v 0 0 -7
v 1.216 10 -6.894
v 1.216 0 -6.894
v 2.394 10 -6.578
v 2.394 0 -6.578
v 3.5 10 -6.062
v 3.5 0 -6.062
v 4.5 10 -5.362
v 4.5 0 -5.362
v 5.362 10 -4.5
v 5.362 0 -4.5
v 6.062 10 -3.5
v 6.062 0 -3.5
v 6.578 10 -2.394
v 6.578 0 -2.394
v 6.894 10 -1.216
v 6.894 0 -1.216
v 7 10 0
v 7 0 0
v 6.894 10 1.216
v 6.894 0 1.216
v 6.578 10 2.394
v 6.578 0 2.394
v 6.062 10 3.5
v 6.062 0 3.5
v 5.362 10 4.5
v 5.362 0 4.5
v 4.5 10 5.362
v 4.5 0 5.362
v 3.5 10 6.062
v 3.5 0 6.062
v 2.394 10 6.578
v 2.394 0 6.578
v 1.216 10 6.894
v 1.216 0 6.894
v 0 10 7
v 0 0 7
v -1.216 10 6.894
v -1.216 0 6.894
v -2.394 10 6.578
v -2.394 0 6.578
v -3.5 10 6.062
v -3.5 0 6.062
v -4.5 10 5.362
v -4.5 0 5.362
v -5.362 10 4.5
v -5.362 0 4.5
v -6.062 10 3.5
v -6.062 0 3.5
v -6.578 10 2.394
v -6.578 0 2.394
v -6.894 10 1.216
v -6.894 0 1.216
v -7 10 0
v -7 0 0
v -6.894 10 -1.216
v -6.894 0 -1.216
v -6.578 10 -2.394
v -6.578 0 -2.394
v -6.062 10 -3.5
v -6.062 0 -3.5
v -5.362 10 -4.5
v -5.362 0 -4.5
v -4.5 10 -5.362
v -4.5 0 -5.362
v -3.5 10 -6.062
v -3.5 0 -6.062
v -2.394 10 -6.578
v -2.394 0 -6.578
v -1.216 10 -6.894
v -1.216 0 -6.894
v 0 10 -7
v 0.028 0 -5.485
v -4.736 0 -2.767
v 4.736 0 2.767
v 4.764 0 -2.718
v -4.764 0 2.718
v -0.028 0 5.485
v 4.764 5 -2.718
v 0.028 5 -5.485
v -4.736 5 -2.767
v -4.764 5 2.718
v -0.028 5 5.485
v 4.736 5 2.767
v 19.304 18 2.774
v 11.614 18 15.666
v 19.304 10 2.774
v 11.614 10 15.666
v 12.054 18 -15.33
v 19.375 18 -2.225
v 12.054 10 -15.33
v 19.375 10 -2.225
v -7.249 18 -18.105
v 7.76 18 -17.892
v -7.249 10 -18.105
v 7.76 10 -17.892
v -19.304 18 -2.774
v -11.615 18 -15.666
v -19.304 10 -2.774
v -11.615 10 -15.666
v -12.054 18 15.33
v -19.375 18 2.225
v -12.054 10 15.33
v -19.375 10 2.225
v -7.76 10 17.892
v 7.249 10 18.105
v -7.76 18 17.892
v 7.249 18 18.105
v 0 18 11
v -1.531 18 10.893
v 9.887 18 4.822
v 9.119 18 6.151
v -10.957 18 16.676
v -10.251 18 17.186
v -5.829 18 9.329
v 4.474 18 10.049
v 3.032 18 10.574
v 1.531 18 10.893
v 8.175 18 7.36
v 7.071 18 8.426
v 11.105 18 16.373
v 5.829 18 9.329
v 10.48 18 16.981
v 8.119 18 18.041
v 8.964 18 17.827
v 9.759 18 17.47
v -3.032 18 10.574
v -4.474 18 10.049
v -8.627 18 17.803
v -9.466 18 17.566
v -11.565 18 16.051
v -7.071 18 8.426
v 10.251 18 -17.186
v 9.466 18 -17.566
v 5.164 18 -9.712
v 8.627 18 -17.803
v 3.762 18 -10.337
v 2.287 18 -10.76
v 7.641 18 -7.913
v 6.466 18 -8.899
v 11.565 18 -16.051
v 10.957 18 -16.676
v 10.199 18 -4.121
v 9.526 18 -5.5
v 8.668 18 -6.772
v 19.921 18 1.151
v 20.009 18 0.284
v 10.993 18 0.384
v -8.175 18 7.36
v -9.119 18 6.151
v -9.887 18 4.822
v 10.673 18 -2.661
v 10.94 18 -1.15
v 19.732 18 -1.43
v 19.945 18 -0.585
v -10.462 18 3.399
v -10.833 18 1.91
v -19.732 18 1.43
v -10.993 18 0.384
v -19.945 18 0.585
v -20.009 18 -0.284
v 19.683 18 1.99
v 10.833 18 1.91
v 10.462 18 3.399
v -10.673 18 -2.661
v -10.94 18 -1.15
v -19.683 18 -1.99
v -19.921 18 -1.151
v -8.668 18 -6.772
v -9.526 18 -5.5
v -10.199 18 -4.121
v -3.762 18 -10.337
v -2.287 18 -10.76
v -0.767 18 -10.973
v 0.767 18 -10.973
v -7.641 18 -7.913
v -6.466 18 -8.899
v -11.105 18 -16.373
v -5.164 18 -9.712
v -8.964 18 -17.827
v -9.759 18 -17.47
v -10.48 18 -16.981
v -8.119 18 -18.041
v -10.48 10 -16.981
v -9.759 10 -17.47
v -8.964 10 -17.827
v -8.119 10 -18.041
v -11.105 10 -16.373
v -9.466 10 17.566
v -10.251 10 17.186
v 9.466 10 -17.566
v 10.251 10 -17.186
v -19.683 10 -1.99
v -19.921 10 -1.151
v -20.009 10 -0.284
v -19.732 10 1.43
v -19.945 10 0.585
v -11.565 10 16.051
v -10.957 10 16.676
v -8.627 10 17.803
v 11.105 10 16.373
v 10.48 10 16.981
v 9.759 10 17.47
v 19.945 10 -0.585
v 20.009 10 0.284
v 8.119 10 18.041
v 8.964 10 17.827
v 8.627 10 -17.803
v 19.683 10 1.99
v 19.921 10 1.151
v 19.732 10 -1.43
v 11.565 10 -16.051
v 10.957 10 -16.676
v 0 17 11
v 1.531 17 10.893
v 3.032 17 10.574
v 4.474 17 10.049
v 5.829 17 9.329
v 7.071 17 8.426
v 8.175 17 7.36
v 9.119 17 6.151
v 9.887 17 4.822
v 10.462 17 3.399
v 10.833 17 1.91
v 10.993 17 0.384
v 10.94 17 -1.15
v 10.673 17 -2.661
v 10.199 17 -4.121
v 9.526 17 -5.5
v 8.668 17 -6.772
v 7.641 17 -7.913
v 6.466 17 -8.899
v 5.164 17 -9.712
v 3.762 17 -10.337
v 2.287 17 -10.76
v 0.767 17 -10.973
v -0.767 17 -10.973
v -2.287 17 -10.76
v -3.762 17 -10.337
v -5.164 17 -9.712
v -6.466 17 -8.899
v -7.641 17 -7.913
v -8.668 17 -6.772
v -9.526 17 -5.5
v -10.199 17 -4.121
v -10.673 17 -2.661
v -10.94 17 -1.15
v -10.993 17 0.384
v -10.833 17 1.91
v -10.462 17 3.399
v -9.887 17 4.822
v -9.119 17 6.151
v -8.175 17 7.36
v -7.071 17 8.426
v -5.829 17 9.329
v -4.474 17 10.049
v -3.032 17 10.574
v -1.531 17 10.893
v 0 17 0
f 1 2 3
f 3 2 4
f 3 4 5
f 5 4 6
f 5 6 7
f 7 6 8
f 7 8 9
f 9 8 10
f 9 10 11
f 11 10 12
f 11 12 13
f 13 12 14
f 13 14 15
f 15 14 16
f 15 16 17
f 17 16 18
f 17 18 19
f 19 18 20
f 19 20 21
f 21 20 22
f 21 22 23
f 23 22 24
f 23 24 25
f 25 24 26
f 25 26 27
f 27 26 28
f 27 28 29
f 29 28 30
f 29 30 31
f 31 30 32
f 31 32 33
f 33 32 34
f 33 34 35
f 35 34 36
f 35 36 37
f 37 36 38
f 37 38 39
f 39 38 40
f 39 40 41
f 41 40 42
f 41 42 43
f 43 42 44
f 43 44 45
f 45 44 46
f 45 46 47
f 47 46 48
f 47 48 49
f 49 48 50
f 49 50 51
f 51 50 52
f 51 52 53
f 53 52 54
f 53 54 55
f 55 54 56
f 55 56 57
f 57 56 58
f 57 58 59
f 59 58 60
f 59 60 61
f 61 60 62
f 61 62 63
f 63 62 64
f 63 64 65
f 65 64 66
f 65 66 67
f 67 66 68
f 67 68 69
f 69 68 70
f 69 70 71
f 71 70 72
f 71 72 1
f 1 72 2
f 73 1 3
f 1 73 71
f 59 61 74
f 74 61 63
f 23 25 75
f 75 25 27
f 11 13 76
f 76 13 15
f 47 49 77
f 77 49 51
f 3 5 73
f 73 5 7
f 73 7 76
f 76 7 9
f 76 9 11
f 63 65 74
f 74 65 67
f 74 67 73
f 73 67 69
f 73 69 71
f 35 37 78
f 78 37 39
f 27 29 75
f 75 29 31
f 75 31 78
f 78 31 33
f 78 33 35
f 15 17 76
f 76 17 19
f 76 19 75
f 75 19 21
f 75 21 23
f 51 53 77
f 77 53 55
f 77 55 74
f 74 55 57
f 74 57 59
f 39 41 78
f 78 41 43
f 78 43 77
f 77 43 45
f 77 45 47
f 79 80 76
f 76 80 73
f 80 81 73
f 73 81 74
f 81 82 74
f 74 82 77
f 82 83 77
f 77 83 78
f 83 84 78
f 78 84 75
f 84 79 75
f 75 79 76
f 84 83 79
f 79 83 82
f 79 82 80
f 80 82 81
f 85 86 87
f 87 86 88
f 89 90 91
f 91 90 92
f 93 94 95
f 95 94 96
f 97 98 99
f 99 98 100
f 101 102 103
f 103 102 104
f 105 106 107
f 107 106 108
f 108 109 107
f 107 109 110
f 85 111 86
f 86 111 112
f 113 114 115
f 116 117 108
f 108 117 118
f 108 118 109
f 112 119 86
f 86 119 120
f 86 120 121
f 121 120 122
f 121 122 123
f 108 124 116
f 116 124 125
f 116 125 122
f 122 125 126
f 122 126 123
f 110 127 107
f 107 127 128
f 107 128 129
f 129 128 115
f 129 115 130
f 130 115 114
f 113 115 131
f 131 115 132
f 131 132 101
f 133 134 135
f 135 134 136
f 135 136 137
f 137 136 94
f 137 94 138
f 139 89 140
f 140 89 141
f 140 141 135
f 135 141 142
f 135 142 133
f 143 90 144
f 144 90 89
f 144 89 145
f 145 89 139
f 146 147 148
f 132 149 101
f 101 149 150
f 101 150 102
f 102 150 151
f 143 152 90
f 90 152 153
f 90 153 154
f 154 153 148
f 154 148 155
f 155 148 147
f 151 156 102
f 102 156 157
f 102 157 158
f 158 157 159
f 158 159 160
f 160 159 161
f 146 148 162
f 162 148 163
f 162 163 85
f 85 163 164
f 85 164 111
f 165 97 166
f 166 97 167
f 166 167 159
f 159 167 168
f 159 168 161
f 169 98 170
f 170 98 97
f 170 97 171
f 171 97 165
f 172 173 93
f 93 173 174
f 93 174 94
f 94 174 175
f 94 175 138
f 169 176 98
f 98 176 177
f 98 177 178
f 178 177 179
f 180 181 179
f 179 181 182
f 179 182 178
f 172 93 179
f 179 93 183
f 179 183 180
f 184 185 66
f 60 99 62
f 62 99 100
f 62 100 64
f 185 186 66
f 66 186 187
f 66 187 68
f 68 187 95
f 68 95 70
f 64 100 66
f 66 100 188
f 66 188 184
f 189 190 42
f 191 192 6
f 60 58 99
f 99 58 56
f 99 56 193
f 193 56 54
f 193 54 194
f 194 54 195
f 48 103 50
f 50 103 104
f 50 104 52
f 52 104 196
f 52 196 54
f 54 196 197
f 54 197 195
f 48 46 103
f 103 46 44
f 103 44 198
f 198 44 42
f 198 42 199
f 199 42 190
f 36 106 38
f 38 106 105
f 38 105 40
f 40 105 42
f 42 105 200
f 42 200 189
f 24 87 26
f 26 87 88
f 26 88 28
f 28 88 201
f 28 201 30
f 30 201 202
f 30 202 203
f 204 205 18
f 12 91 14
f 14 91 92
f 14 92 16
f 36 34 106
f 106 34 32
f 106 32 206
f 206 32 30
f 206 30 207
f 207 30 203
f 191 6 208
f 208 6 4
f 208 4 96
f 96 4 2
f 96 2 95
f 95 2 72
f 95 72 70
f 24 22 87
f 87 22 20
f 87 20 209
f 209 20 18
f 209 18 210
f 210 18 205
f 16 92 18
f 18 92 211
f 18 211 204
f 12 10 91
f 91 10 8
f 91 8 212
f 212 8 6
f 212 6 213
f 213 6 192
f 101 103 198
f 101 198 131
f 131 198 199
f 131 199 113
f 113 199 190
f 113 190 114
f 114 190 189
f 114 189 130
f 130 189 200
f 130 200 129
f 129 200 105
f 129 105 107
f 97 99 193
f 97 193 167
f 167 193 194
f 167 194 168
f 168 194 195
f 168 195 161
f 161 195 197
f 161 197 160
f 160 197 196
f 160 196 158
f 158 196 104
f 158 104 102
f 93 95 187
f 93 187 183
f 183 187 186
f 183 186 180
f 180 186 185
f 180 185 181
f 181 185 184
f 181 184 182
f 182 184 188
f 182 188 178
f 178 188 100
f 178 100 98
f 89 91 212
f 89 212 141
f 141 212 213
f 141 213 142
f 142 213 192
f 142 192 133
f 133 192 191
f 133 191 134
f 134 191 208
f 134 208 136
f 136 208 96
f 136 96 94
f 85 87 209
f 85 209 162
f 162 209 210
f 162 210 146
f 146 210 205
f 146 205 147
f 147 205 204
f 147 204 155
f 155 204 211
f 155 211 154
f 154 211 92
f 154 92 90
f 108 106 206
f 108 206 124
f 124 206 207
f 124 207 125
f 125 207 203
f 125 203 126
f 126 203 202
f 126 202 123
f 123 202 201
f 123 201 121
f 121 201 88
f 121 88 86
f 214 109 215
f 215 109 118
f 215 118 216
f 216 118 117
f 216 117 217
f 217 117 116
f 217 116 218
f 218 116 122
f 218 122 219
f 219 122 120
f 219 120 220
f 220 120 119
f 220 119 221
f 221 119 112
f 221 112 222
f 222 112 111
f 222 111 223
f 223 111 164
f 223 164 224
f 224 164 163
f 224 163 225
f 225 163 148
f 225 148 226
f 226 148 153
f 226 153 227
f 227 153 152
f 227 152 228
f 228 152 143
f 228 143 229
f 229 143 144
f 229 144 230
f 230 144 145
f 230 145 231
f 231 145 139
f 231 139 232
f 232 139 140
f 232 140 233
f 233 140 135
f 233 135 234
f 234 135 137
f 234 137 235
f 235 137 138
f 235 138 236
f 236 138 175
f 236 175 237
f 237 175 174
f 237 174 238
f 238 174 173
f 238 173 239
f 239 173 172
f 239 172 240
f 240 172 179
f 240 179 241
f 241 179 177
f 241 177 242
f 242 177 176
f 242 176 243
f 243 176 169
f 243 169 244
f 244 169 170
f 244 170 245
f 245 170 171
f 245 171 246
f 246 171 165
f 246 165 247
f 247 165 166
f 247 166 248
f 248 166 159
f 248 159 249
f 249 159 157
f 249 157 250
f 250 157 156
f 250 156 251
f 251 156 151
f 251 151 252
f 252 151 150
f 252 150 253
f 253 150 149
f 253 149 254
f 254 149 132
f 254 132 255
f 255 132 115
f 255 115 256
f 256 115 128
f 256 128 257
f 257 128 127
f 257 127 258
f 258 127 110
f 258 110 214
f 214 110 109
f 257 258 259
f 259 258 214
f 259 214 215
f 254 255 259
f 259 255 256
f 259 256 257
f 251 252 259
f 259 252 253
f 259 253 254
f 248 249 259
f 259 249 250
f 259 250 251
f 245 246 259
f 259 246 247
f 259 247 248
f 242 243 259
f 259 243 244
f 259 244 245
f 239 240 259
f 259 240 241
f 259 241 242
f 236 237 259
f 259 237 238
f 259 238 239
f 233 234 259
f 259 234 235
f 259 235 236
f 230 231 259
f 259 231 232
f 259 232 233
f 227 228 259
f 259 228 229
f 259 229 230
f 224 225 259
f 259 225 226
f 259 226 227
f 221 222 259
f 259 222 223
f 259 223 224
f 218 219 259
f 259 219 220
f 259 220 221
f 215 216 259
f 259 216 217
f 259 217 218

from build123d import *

# Parameters (mm, degrees)
SKETCH1_R           = 7
BOSS_EXTRUDE1_DEPTH = 10
CUT_EXTRUDE1_DEPTH  = 5
BOSS_EXTRUDE2_DEPTH = 8
FILLET1_R           = 5
SKETCH4_R           = 11
CUT_EXTRUDE2_DEPTH  = 1


with BuildPart() as part:
    # Sketch1 → Boss-Extrude1 (new body)
    with BuildSketch(Plane(origin=(0, 0, 0), x_dir=(1, 0, 0), z_dir=(0, 1, 0))):
        with Locations(Location((0, 0, 0), (0, 0, 270))):
            Circle(SKETCH1_R)
    extrude(amount=BOSS_EXTRUDE1_DEPTH)

    # Sketch2 → Cut-Extrude1 (cut)
    with BuildSketch(Plane.XZ):
        Polygon((4.76388744, -2.718218128), (4.735989672, 2.76653848), (-0.027897769, 5.484756608), (-4.76388744, 2.718218128), (-4.735989672, -2.76653848), (0.027897769, -5.484756608), align=None)
    extrude(amount=-CUT_EXTRUDE1_DEPTH, mode=Mode.SUBTRACT)

    # Sketch3 → Boss-Extrude2 (add)
    with BuildSketch(Plane(origin=(0, 10, 0), x_dir=(1, 0, 0), z_dir=(0, 1, 0))):
        Polygon((20.782516215, -0.294991143), (10.646727931, 17.850691425), (-10.135788284, 18.145682568), (-20.782516215, 0.294991143), (-10.646727931, -17.850691425), (10.135788284, -18.145682568), align=None)
    extrude(amount=BOSS_EXTRUDE2_DEPTH)

    # Fillet1
    fillet1_edges = [part.edges().sort_by_distance(p)[0] for p in [
        (10.135788284, 14, 18.145682568),
        (20.782516215, 14, 0.294991143),
        (10.646727931, 14, -17.850691425),
        (-10.135788284, 14, -18.145682568),
        (-20.782516215, 14, -0.294991143),
        (-10.646727931, 14, 17.850691425),
    ]]
    fillet(fillet1_edges, radius=FILLET1_R)

    # Sketch4 → Cut-Extrude2 (cut)
    with BuildSketch(Plane(origin=(0, 18, 0), x_dir=(1, 0, 0), z_dir=(0, 1, 0))):
        with Locations(Location((0, 0, 0), (0, 0, 270))):
            Circle(SKETCH4_R)
    extrude(amount=-CUT_EXTRUDE2_DEPTH, mode=Mode.SUBTRACT)


solid = part.part
